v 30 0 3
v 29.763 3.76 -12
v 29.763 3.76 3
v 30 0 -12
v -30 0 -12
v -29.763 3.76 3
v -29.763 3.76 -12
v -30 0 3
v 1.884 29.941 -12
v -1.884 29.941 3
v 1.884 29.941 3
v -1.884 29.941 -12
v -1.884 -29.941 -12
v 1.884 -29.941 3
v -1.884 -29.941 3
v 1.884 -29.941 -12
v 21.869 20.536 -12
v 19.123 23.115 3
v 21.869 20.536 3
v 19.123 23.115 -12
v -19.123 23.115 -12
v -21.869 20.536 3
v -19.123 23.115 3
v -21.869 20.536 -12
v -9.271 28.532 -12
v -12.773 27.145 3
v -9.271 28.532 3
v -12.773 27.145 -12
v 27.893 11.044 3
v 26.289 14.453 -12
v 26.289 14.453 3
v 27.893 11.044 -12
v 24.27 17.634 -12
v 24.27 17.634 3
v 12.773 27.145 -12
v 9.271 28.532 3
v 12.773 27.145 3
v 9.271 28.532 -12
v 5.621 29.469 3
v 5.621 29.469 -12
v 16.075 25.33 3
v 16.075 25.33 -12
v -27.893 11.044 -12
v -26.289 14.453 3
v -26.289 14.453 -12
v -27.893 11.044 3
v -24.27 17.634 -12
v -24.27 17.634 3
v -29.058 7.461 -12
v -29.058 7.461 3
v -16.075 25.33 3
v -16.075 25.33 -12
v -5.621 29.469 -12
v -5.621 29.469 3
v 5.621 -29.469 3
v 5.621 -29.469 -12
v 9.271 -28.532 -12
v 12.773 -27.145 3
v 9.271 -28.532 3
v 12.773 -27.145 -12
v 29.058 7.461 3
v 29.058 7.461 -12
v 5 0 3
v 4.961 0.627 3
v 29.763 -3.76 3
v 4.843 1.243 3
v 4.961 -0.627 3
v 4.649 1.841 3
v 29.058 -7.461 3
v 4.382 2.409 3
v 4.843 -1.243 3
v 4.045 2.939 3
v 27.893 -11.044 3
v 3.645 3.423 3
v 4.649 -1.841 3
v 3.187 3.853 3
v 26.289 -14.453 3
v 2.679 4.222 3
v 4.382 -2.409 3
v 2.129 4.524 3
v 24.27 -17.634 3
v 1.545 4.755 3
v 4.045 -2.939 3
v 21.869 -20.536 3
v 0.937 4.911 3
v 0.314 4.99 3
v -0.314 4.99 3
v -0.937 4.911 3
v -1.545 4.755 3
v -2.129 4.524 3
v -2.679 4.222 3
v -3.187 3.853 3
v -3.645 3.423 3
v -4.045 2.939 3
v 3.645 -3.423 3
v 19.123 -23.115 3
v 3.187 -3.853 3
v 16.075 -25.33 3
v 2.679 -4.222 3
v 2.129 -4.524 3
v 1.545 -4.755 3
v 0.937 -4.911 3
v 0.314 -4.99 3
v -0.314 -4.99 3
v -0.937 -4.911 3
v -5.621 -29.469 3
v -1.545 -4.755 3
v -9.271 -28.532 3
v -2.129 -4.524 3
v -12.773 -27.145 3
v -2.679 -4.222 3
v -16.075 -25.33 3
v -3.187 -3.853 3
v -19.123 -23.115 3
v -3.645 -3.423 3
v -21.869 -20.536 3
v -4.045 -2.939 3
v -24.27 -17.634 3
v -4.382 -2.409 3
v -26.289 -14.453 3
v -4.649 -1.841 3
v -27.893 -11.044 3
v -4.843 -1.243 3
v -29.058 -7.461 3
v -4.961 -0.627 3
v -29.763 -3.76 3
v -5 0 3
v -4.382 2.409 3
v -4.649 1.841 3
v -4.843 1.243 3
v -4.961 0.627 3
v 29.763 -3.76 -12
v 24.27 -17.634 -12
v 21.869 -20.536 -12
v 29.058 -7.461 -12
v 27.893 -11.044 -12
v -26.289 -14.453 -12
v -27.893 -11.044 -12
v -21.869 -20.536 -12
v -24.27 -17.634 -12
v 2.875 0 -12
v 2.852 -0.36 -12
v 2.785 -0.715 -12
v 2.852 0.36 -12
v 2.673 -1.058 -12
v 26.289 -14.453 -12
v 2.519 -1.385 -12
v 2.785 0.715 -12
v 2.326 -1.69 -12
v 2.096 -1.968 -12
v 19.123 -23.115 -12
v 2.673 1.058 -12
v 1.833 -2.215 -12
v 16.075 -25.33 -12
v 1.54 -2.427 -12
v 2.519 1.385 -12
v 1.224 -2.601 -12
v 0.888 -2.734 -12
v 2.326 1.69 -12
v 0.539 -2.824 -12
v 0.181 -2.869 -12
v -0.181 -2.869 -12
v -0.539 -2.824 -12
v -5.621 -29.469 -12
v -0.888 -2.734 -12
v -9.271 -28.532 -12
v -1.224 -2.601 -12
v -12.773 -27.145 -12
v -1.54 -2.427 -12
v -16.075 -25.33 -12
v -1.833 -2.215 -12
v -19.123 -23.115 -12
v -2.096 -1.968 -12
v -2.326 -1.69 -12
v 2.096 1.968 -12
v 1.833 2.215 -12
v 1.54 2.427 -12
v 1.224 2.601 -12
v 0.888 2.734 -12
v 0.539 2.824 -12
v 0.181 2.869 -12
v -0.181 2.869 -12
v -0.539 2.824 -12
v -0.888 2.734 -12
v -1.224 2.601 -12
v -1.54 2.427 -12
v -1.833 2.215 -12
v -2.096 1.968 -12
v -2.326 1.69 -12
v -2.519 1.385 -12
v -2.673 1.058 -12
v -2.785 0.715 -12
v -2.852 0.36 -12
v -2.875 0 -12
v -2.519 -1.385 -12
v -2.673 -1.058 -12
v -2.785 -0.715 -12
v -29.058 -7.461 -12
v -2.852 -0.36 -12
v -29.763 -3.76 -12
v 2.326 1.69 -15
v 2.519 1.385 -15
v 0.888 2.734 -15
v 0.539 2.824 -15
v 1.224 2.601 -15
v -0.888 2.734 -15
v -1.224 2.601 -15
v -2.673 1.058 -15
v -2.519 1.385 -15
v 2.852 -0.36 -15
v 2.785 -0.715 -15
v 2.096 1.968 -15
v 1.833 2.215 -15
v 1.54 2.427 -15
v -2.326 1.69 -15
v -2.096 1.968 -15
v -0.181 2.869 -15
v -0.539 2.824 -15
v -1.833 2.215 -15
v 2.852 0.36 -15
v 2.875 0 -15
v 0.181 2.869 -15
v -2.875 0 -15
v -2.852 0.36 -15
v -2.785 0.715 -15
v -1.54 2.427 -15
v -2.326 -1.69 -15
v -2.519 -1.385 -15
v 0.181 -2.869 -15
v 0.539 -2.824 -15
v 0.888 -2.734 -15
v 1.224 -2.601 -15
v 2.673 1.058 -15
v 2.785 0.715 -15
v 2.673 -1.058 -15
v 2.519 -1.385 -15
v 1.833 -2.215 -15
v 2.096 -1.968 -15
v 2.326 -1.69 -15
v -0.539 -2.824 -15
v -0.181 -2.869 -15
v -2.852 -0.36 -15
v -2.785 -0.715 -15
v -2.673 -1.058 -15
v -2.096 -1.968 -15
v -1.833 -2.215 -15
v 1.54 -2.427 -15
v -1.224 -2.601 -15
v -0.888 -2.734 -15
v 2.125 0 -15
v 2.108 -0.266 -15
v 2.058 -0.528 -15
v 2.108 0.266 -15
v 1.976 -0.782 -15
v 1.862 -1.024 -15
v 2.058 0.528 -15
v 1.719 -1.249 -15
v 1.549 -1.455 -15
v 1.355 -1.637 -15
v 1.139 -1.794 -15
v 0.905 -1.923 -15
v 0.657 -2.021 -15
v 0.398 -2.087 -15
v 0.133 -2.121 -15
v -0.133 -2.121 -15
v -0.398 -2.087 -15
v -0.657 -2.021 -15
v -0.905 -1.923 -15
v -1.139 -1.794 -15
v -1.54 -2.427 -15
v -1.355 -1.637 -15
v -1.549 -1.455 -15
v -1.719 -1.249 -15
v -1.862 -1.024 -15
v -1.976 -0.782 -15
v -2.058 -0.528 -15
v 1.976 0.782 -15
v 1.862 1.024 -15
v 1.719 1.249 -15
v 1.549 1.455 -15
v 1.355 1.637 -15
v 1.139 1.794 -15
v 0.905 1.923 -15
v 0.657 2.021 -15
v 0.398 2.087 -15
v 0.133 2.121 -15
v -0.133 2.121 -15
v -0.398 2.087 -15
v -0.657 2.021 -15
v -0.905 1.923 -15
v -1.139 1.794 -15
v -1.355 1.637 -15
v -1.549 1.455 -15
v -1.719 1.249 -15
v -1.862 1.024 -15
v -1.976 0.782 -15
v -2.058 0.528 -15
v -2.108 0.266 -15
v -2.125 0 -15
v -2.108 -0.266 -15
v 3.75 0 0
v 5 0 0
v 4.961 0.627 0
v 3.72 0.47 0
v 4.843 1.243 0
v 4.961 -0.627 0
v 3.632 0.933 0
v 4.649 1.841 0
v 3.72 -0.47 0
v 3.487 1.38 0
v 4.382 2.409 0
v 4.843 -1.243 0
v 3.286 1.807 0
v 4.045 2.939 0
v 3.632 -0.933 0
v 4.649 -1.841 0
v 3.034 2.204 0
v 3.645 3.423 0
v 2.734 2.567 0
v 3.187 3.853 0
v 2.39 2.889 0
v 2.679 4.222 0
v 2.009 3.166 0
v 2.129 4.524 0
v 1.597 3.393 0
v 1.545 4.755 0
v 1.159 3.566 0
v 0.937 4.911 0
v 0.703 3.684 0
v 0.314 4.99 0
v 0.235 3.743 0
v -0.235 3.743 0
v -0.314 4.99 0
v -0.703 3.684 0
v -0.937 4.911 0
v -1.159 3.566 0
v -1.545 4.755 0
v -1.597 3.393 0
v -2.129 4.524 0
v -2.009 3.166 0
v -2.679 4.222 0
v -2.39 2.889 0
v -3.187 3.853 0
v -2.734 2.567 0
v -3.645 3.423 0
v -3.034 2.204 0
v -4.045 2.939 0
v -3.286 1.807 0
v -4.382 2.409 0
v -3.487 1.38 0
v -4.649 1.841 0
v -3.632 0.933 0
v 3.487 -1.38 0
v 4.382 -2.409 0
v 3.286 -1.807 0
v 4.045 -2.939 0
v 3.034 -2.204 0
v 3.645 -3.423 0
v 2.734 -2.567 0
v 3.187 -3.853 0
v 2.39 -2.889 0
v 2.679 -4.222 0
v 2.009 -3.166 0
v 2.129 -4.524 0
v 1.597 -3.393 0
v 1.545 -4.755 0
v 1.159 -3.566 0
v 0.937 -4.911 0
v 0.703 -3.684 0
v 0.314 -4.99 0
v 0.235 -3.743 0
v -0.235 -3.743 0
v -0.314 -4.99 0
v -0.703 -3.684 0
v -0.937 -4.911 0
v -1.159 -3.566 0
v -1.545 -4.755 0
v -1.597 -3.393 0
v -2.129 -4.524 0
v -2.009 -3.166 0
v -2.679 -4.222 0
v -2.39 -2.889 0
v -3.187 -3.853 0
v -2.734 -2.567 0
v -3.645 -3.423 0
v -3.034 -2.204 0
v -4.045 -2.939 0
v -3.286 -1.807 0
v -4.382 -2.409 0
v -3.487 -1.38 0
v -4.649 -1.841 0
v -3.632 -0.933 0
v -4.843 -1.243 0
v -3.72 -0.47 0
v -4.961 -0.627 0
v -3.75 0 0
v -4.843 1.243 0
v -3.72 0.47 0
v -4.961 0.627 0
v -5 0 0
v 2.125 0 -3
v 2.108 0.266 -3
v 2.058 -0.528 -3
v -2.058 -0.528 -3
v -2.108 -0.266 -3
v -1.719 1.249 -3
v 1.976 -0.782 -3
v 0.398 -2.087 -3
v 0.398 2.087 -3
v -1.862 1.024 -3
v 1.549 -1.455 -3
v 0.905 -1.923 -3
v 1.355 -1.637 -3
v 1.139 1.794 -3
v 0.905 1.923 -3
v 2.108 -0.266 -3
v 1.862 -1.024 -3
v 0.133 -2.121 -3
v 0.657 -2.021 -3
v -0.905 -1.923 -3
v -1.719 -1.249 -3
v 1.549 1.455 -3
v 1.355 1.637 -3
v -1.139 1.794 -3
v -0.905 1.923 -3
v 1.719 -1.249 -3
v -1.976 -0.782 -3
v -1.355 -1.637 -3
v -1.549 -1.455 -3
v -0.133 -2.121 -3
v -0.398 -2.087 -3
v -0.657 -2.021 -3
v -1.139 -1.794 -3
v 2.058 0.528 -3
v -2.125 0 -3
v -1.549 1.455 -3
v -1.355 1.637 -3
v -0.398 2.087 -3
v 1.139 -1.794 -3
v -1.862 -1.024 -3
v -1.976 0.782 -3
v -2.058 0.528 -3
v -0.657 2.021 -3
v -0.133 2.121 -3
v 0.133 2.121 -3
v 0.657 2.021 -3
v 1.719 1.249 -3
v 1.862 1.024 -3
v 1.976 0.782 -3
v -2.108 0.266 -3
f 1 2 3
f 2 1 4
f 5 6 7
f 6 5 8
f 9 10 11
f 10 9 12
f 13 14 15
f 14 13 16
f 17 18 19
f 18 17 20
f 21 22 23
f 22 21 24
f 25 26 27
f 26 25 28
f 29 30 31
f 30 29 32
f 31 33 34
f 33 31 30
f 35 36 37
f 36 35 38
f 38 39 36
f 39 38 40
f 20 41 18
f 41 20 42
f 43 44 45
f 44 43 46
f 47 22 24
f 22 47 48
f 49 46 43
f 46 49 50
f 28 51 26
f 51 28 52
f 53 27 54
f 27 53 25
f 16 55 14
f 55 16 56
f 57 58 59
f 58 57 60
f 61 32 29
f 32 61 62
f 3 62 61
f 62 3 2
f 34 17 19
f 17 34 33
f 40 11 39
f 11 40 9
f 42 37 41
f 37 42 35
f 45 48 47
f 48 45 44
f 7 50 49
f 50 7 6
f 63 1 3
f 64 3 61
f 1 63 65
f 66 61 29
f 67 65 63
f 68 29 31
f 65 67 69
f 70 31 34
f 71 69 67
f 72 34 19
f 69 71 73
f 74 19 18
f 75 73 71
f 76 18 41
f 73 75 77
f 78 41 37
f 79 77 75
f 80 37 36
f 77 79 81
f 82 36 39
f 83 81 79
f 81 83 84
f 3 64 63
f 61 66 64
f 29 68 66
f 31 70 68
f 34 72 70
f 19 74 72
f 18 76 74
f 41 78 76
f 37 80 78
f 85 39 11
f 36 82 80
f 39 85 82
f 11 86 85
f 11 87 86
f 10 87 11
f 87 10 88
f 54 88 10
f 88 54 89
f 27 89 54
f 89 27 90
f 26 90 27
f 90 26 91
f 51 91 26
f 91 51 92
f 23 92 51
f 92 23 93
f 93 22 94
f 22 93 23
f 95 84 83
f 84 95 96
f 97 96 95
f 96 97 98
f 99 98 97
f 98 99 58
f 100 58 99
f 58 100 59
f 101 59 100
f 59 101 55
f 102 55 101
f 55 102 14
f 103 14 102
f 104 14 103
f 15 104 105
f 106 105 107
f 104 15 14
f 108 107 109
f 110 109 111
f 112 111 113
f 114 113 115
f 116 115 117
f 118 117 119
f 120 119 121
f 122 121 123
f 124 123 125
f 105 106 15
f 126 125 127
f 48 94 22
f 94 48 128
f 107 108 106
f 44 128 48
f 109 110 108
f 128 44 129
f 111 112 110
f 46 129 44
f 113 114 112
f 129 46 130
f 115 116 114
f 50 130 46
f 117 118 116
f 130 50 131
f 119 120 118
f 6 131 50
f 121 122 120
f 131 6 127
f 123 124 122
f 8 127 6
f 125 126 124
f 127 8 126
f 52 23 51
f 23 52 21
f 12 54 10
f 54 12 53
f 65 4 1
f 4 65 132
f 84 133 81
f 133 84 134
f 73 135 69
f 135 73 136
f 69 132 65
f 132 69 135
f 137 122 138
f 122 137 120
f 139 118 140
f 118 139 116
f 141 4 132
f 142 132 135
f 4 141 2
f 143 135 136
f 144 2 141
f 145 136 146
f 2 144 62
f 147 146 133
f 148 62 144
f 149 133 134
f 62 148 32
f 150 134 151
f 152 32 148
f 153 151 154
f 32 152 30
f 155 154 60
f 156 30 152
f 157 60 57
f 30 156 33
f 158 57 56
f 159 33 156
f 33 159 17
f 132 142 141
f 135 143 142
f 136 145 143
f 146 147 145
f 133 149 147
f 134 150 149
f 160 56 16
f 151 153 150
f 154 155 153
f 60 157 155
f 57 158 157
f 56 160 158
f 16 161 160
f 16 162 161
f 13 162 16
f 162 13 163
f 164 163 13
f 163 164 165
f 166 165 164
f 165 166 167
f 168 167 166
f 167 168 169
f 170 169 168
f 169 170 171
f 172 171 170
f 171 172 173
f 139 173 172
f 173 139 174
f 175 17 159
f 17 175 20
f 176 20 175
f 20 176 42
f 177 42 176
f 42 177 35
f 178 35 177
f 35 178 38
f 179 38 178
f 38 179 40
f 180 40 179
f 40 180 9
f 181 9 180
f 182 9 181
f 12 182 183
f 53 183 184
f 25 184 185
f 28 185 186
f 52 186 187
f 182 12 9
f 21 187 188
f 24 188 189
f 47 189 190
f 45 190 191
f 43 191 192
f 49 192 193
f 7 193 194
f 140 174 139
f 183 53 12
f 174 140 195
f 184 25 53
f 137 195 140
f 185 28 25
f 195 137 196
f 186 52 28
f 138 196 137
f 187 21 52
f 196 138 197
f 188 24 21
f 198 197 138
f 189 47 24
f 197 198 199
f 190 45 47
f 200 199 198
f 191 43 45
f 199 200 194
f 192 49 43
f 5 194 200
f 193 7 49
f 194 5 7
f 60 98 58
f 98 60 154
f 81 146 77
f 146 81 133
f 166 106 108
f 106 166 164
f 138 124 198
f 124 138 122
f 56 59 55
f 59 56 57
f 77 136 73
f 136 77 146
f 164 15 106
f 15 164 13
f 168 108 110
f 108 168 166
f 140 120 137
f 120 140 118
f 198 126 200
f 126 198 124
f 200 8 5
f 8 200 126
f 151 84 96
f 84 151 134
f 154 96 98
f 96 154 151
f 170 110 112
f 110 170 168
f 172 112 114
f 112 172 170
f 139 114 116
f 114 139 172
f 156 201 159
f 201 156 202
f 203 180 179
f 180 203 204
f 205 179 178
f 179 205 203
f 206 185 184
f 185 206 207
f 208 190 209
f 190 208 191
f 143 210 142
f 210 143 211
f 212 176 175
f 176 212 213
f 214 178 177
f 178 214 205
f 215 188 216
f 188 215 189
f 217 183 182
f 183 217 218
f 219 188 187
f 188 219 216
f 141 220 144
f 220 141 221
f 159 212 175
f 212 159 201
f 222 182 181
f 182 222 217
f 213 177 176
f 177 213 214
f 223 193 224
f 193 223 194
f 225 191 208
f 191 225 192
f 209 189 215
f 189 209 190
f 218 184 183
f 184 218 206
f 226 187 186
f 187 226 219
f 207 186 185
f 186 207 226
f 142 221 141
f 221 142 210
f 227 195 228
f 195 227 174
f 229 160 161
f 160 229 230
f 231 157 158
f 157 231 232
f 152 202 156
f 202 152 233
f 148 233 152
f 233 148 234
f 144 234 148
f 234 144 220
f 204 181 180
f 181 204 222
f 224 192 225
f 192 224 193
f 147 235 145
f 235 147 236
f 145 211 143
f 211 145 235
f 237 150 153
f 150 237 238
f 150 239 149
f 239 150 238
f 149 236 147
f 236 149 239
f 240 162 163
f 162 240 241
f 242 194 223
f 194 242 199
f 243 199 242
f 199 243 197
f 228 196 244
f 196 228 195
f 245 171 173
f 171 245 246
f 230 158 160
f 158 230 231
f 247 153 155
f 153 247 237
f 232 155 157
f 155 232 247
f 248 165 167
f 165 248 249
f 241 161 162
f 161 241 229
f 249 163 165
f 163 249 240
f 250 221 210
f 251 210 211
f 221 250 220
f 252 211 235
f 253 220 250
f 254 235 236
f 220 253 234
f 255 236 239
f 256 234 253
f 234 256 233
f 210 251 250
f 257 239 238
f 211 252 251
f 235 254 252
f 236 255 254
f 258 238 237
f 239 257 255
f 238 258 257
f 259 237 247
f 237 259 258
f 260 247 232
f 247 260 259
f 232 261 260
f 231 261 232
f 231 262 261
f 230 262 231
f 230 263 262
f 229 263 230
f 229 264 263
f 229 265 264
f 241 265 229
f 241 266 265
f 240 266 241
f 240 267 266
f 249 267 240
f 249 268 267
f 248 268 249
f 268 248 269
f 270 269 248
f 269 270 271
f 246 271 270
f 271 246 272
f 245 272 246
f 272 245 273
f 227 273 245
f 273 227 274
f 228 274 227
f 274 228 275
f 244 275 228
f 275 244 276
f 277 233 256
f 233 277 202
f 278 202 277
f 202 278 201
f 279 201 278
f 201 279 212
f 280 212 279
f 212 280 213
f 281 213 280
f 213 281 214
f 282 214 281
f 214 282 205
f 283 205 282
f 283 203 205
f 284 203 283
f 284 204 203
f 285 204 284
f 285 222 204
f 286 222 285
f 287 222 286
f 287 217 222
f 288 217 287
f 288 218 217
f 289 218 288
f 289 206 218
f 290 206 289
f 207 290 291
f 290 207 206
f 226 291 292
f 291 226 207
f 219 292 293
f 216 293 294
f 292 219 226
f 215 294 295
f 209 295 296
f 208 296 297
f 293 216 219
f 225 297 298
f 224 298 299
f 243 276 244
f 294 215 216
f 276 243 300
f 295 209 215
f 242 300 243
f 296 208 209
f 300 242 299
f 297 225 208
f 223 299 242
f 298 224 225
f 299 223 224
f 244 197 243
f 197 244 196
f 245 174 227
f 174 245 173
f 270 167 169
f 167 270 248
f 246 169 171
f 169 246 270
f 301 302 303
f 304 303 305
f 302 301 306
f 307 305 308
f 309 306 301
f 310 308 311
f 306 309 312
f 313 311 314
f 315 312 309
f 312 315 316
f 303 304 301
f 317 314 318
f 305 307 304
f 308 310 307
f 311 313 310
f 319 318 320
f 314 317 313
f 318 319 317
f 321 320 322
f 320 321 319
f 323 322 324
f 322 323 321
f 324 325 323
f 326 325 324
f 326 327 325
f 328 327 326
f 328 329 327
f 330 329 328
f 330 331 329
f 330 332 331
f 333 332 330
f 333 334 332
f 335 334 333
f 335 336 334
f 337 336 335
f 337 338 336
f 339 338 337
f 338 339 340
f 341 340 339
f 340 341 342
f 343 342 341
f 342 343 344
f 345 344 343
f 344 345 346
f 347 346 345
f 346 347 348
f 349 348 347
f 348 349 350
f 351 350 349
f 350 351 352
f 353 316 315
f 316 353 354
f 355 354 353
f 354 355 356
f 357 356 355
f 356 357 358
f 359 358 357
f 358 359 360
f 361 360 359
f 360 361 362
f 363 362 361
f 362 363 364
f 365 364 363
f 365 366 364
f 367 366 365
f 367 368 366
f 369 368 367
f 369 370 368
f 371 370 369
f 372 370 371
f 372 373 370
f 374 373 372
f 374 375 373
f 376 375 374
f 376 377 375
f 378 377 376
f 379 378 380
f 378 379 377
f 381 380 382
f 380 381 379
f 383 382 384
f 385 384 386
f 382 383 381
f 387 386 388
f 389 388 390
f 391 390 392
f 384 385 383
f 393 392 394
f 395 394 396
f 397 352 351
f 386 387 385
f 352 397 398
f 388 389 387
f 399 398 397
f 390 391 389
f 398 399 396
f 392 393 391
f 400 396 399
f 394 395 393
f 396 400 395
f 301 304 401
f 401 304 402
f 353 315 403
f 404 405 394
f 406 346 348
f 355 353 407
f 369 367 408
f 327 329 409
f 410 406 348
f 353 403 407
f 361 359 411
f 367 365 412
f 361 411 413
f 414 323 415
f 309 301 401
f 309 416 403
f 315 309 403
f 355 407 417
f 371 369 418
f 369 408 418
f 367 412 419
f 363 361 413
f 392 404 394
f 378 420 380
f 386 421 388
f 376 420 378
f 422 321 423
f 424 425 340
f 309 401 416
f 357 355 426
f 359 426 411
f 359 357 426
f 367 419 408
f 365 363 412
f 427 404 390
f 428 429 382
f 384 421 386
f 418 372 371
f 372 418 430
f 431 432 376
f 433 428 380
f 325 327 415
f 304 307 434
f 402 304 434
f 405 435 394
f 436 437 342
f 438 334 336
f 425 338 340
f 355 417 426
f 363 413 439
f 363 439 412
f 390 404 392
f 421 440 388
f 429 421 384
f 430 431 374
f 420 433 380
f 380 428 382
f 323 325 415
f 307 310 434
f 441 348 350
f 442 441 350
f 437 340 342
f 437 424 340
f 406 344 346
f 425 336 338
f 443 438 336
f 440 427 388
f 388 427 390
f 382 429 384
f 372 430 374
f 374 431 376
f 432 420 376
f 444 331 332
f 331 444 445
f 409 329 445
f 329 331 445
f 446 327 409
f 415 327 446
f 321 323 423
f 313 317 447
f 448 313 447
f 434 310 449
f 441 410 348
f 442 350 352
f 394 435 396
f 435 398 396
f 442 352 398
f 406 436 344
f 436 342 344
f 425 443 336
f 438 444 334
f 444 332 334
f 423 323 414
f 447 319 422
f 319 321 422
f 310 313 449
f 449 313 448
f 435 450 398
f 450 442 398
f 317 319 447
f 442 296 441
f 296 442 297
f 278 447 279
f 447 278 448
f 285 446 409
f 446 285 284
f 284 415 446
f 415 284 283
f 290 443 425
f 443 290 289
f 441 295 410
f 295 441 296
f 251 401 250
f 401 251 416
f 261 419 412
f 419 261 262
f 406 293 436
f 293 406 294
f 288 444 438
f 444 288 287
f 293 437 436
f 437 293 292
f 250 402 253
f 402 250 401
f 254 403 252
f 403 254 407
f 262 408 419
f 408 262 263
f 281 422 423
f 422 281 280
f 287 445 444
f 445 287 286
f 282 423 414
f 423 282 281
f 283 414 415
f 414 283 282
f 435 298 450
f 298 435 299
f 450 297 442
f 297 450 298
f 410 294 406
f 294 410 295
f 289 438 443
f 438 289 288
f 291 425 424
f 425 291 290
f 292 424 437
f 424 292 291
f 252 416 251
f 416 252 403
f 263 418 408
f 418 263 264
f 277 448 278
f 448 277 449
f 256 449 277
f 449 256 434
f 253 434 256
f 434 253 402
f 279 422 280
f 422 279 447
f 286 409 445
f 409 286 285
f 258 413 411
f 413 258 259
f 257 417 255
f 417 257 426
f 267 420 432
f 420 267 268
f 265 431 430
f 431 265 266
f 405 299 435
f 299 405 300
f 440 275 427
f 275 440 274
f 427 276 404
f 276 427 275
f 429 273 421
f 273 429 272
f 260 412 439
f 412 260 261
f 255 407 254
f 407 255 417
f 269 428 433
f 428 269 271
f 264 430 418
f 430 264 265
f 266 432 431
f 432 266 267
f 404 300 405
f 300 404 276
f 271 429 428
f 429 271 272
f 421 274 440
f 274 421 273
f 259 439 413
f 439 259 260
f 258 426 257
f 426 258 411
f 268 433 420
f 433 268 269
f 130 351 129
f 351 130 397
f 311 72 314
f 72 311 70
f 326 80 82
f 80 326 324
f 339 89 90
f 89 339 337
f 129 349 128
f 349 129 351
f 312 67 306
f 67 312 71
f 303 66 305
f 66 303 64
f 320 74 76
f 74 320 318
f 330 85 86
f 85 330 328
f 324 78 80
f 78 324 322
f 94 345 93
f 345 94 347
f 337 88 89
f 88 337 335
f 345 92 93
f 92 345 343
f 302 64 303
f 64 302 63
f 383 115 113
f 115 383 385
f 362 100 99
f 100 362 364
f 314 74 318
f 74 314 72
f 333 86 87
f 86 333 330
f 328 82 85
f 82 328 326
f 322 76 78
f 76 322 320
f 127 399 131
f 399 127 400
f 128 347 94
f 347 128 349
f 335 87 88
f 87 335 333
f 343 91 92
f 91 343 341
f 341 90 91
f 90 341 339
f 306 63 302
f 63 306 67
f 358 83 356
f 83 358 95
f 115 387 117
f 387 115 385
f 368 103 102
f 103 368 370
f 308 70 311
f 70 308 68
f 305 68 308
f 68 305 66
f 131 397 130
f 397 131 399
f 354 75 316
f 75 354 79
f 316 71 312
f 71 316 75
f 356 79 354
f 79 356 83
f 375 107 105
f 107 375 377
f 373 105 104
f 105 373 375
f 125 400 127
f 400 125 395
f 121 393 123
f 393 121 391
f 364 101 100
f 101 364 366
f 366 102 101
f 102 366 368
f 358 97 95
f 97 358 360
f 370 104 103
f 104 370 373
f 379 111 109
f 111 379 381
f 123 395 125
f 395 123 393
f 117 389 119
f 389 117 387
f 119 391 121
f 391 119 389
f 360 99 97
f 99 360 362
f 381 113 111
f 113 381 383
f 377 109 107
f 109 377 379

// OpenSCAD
$fn = 50;


difference() {
	union() {
		translate(v = [0, 0, -12.0000000000]) {
			cylinder(h = 15, r = 30.0000000000);
		}
		#translate(v = [0, 0, -15.0000000000]) {
			cylinder(h = 15, r = 2.8750000000);
		}
	}
	union() {
		translate(v = [0, 0, 0]) {
			rotate(a = [0, 0, 0]) {
				difference() {
					union() {
						translate(v = [0, 0, -15.0000000000]) {
							cylinder(h = 15, r = 2.0000000000);
						}
						translate(v = [0, 0, -3]) {
							cylinder(h = 3, r1 = 2.1250000000, r2 = 3.7500000000);
						}
						translate(v = [0, 0, -15.0000000000]) {
							cylinder(h = 15, r = 2.1250000000);
						}
						translate(v = [0, 0, -15.0000000000]) {
							cylinder(h = 15, r = 2.0000000000);
						}
					}
					union();
				}
			}
		}
		#cylinder(h = 3, r = 5.0000000000);
	}
}
